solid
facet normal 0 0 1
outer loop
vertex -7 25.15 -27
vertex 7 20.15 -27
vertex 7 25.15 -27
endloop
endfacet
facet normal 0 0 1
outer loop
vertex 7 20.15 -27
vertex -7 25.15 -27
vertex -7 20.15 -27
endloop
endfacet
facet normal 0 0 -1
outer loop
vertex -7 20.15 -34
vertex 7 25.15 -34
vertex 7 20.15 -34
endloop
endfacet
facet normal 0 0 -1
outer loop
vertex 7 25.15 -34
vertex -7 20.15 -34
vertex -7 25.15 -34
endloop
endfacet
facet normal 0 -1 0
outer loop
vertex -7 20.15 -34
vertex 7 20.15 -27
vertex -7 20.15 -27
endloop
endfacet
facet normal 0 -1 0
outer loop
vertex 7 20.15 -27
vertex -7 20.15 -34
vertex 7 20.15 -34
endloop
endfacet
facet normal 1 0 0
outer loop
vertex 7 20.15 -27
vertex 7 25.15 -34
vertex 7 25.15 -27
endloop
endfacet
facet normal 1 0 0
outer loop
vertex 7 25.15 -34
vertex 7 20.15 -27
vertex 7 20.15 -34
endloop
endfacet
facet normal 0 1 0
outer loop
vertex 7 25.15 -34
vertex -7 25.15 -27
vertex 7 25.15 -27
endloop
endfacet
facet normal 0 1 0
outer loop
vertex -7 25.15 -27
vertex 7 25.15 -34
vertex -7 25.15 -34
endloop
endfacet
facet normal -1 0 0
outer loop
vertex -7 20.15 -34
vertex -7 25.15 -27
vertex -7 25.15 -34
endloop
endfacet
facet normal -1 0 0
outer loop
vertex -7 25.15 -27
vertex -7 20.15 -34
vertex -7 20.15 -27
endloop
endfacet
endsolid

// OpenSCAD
// file: C:/gh/oomlout_oobb_part_motor_gearbox_wave_drive_version_5/parts/oobb_part_motor_gearbox_wave_drive_version_5_12_to_1_reduction/nema17_reference.scad
// Visual reference matching the previous cycloidal project's 40 mm motor envelope.
// Face is Z=0; motor body extends towards -Z and shaft towards +Z.
// End caps, corner chamfers and connector are illustrative external details.
// This is purchased reference hardware, never a printable gearbox component.
module nema17_outline(width=42.3,depth=6,chamfer=3) {
    w=width/2;
    linear_extrude(depth) polygon([
        [-w+chamfer,-w],[w-chamfer,-w],[w,-w+chamfer],[w,w-chamfer],
        [w-chamfer,w],[-w+chamfer,w],[-w,w-chamfer],[-w,-w+chamfer]
    ]);
}
module nema17_front() {
    difference() {
        translate([0,0,-motor_cap_depth])
            nema17_outline(motor_body_width,motor_cap_depth,motor_corner_chamfer);
        for(x=[-motor_hole_pitch/2,motor_hole_pitch/2],y=[-motor_hole_pitch/2,motor_hole_pitch/2])
            translate([x,y,-motor_thread_depth]) cylinder(d=3,h=motor_thread_depth+0.01);
        translate([0,0,-motor_cap_depth-0.01]) cylinder(d=motor_shaft_diameter,h=motor_cap_depth+0.02);
    }
}
module nema17_stator() {
    translate([0,0,-motor_body_depth+motor_cap_depth])
        nema17_outline(motor_body_width,motor_body_depth-2*motor_cap_depth,motor_corner_chamfer);
}
module nema17_rear() {
    difference() {
        translate([0,0,-motor_body_depth])
            nema17_outline(motor_body_width,motor_cap_depth,motor_corner_chamfer);
        for(x=[-motor_hole_pitch/2,motor_hole_pitch/2],y=[-motor_hole_pitch/2,motor_hole_pitch/2])
            translate([x,y,-motor_body_depth-0.01]) cylinder(d=4.5,h=1.2);
    }
}
module nema17_pilot() {
    difference() {
        cylinder(d=motor_pilot_diameter,h=motor_pilot_height);
        translate([0,0,-0.01]) cylinder(d=motor_shaft_diameter,h=motor_pilot_height+0.02);
    }
}
module nema17_shaft() {
    linear_extrude(motor_shaft_length) intersection() {
        circle(d=motor_shaft_diameter);
        translate([-10,-10]) square([10+motor_shaft_diameter/2-motor_shaft_flat_depth,20]);
    }
}
module nema17_connector() {
    // Indicative connector envelope; actual cable exit depends on motor model.
    translate([-7,motor_body_width/2-1,-motor_body_depth+motor_cap_depth])
        cube([14,5,7]);
}
module nema17_reference() {
    color("Silver") { nema17_front(); nema17_rear(); nema17_pilot(); nema17_shaft(); }
    color([0.08,0.08,0.08]) nema17_stator();
    color([0.2,0.2,0.2]) nema17_connector();
}
// file: C:/gh/oomlout_oobb_part_motor_gearbox_wave_drive_version_5/parts/oobb_part_motor_gearbox_wave_drive_version_5_12_to_1_reduction/motor_reference_parameters.scad
// Purchased motor envelope. Recipe defines body, shaft and mounting dimensions.
motor_body_depth = 40.0;
motor_shaft_length = 24.0;
motor_hole_pitch = 31.0;
motor_thread_depth = 6.0;
motor_pilot_diameter = 22.0;
motor_pilot_height = 2.0;
motor_shaft_end_clearance = 0.5;
motor_thread_engagement = 5.2;
motor_shaft_diameter = 5.0;
motor_body_width = 42.3;
motor_cap_depth = 6.0;
motor_corner_chamfer = 3.0;
motor_shaft_flat_depth = 0.5;
motor_face_z = 0.0;
// main file
include <C:/gh/oomlout_oobb_part_motor_gearbox_wave_drive_version_5/parts/oobb_part_motor_gearbox_wave_drive_version_5_12_to_1_reduction/motor_reference_parameters.scad>
include <C:/gh/oomlout_oobb_part_motor_gearbox_wave_drive_version_5/parts/oobb_part_motor_gearbox_wave_drive_version_5_12_to_1_reduction/nema17_reference.scad>
$fn=120;
nema17_connector();
